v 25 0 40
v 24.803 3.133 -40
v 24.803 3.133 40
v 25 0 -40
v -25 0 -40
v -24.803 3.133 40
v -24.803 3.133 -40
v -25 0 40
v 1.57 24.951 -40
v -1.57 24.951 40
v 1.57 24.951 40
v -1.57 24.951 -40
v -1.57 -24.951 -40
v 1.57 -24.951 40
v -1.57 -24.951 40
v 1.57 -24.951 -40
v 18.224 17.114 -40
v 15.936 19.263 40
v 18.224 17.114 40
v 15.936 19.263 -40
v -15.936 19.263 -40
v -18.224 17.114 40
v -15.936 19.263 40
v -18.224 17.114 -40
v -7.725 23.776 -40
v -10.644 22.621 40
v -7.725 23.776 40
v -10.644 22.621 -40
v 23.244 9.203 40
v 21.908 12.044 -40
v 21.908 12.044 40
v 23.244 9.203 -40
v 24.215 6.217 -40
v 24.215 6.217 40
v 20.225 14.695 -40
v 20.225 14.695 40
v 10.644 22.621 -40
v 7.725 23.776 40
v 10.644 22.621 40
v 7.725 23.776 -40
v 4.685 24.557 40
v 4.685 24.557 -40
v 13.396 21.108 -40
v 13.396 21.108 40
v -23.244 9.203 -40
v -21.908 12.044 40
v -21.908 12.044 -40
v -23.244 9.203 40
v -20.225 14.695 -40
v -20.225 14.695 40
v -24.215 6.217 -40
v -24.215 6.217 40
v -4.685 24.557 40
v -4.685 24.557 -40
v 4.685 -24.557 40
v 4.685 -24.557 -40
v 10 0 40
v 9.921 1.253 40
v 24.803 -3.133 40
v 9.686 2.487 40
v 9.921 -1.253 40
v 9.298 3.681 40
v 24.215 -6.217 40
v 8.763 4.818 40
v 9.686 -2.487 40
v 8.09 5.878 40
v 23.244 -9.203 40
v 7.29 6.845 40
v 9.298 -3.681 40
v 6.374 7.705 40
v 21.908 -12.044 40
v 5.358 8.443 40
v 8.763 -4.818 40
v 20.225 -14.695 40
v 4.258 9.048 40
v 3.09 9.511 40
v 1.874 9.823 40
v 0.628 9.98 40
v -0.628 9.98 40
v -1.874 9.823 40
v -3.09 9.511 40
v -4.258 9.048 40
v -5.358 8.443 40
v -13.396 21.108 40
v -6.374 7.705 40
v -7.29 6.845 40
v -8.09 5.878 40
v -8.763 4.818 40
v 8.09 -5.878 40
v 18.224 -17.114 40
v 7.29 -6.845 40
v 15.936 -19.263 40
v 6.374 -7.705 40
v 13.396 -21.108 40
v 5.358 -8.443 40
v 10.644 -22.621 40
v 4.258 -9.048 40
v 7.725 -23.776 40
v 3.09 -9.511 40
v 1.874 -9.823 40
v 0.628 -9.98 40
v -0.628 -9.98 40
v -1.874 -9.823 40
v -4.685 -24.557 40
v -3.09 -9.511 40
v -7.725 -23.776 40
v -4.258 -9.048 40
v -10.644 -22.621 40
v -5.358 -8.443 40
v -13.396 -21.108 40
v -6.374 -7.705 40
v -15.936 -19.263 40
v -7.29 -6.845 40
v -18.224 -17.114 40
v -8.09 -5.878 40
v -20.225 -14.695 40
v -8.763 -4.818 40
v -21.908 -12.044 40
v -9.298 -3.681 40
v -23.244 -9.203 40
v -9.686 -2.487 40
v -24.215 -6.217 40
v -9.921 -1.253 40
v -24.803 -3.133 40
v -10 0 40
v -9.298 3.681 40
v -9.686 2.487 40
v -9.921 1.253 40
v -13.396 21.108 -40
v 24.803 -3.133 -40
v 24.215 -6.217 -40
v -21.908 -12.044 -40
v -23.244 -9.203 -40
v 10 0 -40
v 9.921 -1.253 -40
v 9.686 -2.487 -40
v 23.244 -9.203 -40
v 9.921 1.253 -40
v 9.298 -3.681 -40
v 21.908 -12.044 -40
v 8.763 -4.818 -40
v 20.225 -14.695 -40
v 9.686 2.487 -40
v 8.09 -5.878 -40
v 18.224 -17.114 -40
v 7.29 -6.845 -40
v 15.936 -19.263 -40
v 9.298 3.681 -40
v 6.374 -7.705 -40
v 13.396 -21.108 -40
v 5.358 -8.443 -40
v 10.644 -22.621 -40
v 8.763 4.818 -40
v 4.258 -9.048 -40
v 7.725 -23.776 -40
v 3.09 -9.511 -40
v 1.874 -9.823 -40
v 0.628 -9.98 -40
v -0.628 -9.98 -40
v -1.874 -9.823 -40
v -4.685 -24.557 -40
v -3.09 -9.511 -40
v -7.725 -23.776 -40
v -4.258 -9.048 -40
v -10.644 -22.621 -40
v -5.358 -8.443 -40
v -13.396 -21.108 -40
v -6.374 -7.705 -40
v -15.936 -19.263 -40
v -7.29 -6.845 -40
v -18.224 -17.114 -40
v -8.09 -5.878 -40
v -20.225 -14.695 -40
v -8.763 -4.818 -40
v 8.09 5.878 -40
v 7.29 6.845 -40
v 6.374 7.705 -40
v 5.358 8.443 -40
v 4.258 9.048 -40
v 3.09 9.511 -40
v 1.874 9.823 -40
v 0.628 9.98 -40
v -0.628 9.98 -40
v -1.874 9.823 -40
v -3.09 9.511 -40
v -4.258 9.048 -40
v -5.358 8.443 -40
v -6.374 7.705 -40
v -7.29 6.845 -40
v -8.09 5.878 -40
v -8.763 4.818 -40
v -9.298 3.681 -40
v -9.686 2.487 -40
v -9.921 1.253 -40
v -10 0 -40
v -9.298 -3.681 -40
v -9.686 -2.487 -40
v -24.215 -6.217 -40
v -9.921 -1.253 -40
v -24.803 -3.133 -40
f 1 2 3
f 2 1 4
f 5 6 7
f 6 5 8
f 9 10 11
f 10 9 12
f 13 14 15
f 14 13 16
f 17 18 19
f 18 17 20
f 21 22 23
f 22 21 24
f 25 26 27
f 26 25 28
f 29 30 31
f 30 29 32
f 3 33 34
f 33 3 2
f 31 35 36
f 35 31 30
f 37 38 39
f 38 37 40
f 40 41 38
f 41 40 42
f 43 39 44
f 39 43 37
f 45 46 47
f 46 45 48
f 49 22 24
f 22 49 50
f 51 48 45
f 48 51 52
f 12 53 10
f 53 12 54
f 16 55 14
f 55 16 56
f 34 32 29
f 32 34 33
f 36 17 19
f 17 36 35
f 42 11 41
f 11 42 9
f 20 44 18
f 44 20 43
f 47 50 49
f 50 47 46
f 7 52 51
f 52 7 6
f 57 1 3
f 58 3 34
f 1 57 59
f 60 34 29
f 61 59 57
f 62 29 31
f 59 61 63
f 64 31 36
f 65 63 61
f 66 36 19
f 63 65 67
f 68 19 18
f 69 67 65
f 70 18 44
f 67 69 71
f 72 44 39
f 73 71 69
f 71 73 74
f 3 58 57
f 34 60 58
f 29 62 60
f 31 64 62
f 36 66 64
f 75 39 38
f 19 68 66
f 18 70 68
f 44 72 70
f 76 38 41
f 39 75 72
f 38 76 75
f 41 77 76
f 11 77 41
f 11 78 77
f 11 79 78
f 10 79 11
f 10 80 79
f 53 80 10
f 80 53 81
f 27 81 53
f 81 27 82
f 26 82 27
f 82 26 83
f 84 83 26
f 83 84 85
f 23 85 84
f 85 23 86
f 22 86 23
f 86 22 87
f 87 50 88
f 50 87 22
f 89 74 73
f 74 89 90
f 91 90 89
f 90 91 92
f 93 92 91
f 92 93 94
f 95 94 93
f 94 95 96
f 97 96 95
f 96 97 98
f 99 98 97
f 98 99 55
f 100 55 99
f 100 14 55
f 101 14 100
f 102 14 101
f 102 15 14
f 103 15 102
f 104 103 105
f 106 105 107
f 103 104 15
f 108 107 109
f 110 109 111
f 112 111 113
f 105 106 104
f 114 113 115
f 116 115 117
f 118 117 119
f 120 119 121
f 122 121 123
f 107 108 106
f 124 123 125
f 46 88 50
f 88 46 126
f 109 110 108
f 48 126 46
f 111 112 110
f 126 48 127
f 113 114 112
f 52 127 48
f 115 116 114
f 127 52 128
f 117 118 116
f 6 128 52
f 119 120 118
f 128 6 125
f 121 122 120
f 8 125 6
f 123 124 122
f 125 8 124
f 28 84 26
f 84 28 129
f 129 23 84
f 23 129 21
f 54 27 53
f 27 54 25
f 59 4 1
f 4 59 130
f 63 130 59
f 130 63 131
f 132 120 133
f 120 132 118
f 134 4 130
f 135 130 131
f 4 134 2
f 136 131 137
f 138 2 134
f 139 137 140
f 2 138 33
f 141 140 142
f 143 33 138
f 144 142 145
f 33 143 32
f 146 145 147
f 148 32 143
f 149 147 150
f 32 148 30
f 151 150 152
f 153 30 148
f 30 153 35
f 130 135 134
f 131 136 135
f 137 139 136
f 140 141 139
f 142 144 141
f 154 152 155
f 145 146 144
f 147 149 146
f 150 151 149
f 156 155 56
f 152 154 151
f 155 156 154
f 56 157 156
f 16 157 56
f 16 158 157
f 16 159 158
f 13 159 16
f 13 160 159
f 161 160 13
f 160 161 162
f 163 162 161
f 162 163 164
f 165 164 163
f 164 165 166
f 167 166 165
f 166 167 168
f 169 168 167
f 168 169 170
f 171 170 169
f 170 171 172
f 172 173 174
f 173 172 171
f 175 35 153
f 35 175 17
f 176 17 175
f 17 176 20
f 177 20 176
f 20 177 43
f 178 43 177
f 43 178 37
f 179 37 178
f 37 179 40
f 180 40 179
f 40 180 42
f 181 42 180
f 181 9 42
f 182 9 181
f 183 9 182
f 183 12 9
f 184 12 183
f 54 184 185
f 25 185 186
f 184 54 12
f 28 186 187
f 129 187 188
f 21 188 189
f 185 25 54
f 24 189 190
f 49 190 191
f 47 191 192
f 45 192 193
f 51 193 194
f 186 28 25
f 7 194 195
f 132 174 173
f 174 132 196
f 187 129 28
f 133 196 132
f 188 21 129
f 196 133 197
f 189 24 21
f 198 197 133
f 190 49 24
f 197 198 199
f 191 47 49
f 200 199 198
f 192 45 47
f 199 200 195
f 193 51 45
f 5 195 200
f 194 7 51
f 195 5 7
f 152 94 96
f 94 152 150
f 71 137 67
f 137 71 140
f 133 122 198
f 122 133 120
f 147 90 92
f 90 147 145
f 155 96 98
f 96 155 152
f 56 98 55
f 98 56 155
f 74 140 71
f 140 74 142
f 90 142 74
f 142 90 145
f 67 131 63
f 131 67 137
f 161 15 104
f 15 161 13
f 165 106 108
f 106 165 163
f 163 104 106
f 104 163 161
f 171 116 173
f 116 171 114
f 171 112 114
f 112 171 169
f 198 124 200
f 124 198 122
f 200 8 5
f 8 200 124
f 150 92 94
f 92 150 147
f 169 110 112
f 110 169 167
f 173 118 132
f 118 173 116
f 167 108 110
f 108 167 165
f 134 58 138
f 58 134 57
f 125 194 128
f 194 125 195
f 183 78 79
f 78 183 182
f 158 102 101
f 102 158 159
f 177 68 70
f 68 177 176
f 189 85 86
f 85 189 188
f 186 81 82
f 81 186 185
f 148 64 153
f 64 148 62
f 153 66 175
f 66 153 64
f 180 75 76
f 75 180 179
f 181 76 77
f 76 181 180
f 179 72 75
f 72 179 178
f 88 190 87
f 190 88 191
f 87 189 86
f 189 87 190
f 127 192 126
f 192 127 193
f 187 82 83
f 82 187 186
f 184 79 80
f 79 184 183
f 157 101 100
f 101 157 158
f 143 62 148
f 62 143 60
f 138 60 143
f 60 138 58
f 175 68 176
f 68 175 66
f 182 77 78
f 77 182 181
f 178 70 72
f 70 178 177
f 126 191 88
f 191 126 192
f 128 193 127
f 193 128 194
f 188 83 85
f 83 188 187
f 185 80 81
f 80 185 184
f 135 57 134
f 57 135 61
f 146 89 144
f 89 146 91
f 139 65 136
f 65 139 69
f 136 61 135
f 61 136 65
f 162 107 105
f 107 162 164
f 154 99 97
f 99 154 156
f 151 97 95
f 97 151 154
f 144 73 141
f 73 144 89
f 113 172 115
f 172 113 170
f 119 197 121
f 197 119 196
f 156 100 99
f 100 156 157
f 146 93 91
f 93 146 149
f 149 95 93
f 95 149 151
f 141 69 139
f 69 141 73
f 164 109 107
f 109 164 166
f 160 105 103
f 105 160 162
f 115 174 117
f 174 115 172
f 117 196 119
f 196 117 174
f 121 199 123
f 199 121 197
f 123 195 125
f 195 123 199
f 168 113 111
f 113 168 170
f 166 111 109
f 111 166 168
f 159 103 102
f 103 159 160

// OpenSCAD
$fn = 50;


difference() {
	union() {
		translate(v = [0, 0, -40.0000000000]) {
			cylinder(h = 80, r = 25.0000000000);
		}
	}
	union() {
		translate(v = [0, 0, -100.0000000000]) {
			cylinder(h = 200, r = 10);
		}
	}
}
